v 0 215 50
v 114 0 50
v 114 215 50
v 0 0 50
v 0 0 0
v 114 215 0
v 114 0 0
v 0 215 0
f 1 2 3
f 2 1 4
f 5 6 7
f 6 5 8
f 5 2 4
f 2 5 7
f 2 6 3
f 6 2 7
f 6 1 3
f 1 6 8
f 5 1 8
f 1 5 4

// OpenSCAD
// file: ../../../conf/constants.scad
/**********************************************************************************************************************
 **
 ** conf/constants.scad
 **
 ** This file contains constants and aliases used for the part size definitions.
 **
 **********************************************************************************************************************/

/**
 * The alias names for the rails.
 * A is the "front left" rail, B the "front right" rail, C the back rail.
 * These constants are also used for the sides of the frame and the effector; in this case, side A is the one 
 * opposing rail A.
 */
A = 0;
B = 1;
C = 2;

/**
 * Aliases for metric screw/nut sizes.
 */
M2 = 2;
M3 = 3;
M4 = 4;
M5 = 5;
M8 = 8;

/** 
 * Aliases for NEMA stepper motors.
 */
NEMA14 = 14;
NEMA17 = 17;
NEMA23 = 23;
// main file
/**********************************************************************************************************************
 **
 ** parts/vitamins/electronic/power_supply.scad
 **
 ** This file renders a power supply case placeholder.
 **
 **********************************************************************************************************************/

include <../../../conf/part_sizes.scad>

$fn = 48;

color("LightGray")
	cube([ps_width(), ps_length(), ps_height()]);
